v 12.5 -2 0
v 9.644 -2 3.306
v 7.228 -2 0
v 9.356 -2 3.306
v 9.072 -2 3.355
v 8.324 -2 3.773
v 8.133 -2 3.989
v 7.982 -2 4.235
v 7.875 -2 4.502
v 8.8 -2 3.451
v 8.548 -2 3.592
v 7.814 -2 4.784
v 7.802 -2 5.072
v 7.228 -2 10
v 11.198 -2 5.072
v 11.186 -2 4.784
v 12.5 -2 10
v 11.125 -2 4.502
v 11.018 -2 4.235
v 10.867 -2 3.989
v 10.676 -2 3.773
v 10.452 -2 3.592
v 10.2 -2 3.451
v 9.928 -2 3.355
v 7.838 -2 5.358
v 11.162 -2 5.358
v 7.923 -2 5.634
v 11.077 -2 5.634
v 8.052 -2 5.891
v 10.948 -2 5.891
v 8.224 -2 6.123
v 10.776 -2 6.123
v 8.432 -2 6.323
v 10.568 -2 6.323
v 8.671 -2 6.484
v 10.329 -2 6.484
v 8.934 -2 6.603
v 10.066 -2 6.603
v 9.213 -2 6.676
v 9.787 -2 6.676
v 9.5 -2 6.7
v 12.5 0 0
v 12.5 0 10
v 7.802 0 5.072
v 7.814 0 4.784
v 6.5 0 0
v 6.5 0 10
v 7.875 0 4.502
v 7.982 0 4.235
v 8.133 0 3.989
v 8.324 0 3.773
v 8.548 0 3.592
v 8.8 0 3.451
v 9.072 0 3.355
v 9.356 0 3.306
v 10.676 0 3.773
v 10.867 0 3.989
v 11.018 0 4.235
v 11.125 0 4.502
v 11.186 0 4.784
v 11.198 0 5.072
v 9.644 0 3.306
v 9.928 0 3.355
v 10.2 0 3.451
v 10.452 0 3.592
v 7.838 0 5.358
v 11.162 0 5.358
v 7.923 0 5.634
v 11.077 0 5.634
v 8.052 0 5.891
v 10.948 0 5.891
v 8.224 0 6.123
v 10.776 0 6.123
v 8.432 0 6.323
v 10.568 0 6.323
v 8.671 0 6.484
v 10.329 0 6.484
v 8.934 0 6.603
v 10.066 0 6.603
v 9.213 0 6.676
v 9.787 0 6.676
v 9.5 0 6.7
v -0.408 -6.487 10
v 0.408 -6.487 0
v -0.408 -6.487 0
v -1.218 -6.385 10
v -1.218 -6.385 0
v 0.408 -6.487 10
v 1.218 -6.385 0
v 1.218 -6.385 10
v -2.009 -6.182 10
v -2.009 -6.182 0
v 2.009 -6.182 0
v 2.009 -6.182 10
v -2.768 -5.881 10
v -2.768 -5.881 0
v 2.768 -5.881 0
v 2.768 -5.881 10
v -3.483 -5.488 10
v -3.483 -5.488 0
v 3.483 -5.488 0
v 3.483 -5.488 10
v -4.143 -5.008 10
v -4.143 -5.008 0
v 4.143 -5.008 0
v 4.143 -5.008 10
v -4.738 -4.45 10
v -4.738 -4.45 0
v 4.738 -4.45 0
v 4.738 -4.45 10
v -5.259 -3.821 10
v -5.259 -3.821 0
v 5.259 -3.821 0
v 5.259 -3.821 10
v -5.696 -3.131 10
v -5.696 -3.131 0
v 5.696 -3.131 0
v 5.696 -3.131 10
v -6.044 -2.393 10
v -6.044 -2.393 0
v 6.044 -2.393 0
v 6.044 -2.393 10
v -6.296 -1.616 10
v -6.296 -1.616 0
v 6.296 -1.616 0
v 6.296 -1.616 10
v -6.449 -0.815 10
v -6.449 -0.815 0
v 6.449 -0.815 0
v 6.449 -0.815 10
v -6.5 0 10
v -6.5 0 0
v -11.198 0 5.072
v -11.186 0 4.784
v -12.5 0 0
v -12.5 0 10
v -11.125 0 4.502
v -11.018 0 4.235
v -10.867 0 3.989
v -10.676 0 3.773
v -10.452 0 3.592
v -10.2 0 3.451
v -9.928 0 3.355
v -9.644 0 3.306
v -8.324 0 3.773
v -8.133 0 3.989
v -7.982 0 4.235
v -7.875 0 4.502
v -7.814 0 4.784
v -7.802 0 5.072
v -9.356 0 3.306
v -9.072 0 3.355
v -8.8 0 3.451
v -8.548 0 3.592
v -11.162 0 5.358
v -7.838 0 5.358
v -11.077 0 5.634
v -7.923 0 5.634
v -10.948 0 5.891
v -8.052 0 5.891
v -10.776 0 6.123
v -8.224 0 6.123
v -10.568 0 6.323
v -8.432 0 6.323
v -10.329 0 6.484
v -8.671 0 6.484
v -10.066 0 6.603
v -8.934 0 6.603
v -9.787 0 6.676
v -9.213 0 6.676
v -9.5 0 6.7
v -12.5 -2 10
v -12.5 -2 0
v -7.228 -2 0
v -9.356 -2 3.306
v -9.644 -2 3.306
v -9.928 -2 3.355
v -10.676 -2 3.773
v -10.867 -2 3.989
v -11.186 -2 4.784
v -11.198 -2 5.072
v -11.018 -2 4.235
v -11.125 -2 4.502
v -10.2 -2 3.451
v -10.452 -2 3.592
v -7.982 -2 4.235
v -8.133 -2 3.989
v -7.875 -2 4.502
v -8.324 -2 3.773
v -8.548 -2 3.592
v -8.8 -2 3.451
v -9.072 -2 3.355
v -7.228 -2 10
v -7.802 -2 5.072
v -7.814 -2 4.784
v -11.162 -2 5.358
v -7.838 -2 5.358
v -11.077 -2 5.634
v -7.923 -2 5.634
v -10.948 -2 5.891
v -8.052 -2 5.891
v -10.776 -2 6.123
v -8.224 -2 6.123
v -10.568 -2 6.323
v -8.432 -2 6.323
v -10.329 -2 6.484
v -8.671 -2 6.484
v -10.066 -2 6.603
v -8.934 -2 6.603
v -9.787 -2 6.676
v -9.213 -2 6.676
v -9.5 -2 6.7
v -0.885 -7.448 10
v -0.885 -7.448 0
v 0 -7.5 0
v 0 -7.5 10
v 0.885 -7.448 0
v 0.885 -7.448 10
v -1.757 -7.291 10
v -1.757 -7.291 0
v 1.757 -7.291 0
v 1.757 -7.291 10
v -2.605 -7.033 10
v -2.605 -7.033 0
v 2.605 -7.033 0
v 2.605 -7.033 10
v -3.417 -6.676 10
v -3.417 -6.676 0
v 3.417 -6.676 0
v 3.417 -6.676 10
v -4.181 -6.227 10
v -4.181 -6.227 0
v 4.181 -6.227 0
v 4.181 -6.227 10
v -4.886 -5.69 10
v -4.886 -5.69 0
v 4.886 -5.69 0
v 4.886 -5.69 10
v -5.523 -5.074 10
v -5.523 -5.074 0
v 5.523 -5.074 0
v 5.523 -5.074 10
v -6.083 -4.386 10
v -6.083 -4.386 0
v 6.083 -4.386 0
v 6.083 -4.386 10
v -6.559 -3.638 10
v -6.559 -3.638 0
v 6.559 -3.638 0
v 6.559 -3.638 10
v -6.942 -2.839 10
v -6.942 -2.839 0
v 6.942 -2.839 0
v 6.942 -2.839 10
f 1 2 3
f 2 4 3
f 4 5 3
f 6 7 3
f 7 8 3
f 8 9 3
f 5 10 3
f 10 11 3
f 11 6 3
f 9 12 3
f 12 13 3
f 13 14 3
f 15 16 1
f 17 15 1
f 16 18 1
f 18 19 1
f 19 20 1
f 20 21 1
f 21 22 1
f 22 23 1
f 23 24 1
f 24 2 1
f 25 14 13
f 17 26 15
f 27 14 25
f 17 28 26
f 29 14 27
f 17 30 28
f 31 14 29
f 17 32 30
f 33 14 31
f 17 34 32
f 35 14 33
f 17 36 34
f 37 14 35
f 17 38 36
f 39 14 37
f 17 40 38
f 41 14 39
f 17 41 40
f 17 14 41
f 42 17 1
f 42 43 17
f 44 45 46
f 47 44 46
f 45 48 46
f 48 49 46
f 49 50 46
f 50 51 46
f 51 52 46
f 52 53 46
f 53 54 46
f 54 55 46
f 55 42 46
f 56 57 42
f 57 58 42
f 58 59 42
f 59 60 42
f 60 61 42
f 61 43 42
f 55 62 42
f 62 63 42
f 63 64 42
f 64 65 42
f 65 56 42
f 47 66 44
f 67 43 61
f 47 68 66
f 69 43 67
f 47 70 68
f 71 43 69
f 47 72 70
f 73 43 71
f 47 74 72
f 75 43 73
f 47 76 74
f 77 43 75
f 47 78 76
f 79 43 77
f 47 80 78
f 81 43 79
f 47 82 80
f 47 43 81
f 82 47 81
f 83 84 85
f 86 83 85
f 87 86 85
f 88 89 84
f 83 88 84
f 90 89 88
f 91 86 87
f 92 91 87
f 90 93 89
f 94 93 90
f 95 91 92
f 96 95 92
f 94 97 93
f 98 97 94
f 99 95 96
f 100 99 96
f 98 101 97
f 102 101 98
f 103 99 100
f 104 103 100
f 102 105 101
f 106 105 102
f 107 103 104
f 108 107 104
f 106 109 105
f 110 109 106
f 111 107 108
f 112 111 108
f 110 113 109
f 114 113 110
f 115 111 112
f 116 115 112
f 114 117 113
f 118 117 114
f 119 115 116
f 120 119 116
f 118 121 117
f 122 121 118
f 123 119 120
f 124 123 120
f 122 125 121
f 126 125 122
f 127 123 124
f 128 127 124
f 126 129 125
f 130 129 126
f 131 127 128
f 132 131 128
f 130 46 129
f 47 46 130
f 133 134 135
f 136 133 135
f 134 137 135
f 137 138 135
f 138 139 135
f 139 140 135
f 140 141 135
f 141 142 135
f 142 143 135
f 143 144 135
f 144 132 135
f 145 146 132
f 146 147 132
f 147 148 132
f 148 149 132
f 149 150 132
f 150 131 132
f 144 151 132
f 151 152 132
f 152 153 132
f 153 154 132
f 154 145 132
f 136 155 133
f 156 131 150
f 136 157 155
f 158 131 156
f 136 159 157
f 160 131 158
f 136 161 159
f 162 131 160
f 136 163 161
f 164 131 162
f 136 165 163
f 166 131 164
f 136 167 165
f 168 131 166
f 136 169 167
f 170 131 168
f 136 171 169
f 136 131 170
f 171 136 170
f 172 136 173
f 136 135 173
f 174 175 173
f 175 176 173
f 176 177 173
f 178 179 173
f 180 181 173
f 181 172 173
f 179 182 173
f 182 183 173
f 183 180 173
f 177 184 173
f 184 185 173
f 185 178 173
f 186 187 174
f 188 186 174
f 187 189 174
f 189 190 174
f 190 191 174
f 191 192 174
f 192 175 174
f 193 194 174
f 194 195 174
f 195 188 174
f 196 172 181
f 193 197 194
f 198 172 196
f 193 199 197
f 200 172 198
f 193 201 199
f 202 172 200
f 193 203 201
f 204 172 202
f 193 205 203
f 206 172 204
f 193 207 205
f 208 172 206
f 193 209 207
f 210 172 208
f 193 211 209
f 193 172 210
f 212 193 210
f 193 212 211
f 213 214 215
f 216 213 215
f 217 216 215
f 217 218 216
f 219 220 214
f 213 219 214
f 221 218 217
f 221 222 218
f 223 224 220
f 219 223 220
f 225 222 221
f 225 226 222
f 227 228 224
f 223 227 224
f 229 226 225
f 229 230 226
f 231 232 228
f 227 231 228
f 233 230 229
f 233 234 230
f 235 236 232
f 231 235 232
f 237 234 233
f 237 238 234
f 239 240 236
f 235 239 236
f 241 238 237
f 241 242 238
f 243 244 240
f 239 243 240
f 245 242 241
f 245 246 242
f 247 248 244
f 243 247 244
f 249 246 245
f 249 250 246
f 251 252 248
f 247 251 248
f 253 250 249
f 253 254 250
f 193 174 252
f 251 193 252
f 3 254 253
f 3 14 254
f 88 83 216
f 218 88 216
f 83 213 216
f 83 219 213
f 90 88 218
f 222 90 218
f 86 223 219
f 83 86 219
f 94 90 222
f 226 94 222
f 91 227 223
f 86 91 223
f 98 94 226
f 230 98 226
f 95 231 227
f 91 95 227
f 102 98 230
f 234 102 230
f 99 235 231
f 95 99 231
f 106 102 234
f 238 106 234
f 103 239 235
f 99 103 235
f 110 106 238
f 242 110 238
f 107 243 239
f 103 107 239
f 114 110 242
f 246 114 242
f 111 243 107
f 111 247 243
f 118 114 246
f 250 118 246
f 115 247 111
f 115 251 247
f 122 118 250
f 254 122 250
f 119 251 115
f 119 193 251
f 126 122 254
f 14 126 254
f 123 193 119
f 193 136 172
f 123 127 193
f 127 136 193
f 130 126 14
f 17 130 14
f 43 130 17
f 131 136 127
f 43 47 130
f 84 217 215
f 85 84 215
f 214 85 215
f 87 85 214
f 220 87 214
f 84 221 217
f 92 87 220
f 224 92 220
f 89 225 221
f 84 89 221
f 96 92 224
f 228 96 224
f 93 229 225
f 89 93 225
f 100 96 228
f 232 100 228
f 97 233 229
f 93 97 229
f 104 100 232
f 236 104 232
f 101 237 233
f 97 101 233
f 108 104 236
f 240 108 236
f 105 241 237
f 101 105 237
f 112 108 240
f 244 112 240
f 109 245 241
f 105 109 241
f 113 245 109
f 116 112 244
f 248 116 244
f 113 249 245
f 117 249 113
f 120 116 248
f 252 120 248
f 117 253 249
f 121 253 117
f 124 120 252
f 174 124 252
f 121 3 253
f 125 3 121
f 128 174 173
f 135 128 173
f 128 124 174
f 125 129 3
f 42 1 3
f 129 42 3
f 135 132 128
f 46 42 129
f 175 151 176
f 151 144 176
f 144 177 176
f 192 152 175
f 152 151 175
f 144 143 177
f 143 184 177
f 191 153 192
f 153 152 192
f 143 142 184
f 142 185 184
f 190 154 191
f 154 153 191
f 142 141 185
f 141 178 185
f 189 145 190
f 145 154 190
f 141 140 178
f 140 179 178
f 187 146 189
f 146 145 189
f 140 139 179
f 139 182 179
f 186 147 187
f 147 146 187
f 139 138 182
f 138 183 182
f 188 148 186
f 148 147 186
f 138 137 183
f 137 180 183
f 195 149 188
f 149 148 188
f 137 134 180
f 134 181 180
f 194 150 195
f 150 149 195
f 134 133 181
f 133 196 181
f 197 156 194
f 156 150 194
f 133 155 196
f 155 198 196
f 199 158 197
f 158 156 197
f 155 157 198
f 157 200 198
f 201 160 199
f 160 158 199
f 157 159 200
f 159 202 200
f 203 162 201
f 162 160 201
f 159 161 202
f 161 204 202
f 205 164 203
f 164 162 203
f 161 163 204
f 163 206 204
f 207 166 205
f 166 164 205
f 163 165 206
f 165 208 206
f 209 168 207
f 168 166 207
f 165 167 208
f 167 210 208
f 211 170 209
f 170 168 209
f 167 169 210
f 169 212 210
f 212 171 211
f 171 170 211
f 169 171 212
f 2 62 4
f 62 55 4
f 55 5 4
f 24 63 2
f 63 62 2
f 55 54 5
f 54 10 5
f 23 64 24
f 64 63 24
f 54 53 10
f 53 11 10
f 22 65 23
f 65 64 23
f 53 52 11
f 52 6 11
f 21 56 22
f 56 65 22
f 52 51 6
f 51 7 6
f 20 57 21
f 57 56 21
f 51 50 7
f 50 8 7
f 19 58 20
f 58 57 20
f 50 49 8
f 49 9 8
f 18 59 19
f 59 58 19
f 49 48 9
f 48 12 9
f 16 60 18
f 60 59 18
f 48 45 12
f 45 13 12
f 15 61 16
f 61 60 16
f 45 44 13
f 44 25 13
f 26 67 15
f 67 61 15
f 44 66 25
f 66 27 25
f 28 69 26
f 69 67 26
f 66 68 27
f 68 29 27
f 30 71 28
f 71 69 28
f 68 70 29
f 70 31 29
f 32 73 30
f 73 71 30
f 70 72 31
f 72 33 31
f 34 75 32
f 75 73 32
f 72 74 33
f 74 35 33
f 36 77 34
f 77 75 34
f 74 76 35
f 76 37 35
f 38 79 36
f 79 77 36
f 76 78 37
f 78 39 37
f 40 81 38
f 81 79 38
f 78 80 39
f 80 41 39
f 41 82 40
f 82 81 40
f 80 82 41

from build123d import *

# Parameters (mm, degrees)
EXTRUDE_1_DEPTH     = 10
SKETCH_2_R          = 1.7
CUT_EXTRUDE_1_DEPTH = 10


with BuildPart() as part:
    # 草图1 → 凸台-拉伸1 (new body)
    with BuildSketch(Plane.XY):
        with BuildLine():
            Line((-6.5, 0), (-12.5, 0))
            Line((-12.5, 0), (-12.5, -2))
            Line((-12.5, -2), (-7.228416147, -2))
            ThreePointArc((-7.228416147, -2), (-4.554295868, -5.958891604), (-0.032245386, -7.499930682))
            ThreePointArc((-0.032245386, -7.499930682), (4.528634207, -5.9784172), (7.228416147, -2))
            Line((7.228416147, -2), (12.5, -2))
            Line((12.5, -2), (12.5, 0))
            Line((12.5, 0), (6.5, 0))
            ThreePointArc((6.5, 0), (0, -6.5), (-6.5, 0))
        make_face()
    extrude(amount=EXTRUDE_1_DEPTH)

    # 草图2 → 切除-拉伸1 (cut)
    with BuildSketch(Plane(origin=(0, 0, 0), x_dir=(1, 0, 0), z_dir=(0, 1, 0))):
        with Locations(Location((-9.5, -5, 0), (0, 0, 270))):
            Circle(SKETCH_2_R)
        with Locations(Location((9.5, -5, 0), (0, 0, 270))):
            Circle(SKETCH_2_R)
    extrude(amount=-CUT_EXTRUDE_1_DEPTH, mode=Mode.SUBTRACT)


solid = part.part
